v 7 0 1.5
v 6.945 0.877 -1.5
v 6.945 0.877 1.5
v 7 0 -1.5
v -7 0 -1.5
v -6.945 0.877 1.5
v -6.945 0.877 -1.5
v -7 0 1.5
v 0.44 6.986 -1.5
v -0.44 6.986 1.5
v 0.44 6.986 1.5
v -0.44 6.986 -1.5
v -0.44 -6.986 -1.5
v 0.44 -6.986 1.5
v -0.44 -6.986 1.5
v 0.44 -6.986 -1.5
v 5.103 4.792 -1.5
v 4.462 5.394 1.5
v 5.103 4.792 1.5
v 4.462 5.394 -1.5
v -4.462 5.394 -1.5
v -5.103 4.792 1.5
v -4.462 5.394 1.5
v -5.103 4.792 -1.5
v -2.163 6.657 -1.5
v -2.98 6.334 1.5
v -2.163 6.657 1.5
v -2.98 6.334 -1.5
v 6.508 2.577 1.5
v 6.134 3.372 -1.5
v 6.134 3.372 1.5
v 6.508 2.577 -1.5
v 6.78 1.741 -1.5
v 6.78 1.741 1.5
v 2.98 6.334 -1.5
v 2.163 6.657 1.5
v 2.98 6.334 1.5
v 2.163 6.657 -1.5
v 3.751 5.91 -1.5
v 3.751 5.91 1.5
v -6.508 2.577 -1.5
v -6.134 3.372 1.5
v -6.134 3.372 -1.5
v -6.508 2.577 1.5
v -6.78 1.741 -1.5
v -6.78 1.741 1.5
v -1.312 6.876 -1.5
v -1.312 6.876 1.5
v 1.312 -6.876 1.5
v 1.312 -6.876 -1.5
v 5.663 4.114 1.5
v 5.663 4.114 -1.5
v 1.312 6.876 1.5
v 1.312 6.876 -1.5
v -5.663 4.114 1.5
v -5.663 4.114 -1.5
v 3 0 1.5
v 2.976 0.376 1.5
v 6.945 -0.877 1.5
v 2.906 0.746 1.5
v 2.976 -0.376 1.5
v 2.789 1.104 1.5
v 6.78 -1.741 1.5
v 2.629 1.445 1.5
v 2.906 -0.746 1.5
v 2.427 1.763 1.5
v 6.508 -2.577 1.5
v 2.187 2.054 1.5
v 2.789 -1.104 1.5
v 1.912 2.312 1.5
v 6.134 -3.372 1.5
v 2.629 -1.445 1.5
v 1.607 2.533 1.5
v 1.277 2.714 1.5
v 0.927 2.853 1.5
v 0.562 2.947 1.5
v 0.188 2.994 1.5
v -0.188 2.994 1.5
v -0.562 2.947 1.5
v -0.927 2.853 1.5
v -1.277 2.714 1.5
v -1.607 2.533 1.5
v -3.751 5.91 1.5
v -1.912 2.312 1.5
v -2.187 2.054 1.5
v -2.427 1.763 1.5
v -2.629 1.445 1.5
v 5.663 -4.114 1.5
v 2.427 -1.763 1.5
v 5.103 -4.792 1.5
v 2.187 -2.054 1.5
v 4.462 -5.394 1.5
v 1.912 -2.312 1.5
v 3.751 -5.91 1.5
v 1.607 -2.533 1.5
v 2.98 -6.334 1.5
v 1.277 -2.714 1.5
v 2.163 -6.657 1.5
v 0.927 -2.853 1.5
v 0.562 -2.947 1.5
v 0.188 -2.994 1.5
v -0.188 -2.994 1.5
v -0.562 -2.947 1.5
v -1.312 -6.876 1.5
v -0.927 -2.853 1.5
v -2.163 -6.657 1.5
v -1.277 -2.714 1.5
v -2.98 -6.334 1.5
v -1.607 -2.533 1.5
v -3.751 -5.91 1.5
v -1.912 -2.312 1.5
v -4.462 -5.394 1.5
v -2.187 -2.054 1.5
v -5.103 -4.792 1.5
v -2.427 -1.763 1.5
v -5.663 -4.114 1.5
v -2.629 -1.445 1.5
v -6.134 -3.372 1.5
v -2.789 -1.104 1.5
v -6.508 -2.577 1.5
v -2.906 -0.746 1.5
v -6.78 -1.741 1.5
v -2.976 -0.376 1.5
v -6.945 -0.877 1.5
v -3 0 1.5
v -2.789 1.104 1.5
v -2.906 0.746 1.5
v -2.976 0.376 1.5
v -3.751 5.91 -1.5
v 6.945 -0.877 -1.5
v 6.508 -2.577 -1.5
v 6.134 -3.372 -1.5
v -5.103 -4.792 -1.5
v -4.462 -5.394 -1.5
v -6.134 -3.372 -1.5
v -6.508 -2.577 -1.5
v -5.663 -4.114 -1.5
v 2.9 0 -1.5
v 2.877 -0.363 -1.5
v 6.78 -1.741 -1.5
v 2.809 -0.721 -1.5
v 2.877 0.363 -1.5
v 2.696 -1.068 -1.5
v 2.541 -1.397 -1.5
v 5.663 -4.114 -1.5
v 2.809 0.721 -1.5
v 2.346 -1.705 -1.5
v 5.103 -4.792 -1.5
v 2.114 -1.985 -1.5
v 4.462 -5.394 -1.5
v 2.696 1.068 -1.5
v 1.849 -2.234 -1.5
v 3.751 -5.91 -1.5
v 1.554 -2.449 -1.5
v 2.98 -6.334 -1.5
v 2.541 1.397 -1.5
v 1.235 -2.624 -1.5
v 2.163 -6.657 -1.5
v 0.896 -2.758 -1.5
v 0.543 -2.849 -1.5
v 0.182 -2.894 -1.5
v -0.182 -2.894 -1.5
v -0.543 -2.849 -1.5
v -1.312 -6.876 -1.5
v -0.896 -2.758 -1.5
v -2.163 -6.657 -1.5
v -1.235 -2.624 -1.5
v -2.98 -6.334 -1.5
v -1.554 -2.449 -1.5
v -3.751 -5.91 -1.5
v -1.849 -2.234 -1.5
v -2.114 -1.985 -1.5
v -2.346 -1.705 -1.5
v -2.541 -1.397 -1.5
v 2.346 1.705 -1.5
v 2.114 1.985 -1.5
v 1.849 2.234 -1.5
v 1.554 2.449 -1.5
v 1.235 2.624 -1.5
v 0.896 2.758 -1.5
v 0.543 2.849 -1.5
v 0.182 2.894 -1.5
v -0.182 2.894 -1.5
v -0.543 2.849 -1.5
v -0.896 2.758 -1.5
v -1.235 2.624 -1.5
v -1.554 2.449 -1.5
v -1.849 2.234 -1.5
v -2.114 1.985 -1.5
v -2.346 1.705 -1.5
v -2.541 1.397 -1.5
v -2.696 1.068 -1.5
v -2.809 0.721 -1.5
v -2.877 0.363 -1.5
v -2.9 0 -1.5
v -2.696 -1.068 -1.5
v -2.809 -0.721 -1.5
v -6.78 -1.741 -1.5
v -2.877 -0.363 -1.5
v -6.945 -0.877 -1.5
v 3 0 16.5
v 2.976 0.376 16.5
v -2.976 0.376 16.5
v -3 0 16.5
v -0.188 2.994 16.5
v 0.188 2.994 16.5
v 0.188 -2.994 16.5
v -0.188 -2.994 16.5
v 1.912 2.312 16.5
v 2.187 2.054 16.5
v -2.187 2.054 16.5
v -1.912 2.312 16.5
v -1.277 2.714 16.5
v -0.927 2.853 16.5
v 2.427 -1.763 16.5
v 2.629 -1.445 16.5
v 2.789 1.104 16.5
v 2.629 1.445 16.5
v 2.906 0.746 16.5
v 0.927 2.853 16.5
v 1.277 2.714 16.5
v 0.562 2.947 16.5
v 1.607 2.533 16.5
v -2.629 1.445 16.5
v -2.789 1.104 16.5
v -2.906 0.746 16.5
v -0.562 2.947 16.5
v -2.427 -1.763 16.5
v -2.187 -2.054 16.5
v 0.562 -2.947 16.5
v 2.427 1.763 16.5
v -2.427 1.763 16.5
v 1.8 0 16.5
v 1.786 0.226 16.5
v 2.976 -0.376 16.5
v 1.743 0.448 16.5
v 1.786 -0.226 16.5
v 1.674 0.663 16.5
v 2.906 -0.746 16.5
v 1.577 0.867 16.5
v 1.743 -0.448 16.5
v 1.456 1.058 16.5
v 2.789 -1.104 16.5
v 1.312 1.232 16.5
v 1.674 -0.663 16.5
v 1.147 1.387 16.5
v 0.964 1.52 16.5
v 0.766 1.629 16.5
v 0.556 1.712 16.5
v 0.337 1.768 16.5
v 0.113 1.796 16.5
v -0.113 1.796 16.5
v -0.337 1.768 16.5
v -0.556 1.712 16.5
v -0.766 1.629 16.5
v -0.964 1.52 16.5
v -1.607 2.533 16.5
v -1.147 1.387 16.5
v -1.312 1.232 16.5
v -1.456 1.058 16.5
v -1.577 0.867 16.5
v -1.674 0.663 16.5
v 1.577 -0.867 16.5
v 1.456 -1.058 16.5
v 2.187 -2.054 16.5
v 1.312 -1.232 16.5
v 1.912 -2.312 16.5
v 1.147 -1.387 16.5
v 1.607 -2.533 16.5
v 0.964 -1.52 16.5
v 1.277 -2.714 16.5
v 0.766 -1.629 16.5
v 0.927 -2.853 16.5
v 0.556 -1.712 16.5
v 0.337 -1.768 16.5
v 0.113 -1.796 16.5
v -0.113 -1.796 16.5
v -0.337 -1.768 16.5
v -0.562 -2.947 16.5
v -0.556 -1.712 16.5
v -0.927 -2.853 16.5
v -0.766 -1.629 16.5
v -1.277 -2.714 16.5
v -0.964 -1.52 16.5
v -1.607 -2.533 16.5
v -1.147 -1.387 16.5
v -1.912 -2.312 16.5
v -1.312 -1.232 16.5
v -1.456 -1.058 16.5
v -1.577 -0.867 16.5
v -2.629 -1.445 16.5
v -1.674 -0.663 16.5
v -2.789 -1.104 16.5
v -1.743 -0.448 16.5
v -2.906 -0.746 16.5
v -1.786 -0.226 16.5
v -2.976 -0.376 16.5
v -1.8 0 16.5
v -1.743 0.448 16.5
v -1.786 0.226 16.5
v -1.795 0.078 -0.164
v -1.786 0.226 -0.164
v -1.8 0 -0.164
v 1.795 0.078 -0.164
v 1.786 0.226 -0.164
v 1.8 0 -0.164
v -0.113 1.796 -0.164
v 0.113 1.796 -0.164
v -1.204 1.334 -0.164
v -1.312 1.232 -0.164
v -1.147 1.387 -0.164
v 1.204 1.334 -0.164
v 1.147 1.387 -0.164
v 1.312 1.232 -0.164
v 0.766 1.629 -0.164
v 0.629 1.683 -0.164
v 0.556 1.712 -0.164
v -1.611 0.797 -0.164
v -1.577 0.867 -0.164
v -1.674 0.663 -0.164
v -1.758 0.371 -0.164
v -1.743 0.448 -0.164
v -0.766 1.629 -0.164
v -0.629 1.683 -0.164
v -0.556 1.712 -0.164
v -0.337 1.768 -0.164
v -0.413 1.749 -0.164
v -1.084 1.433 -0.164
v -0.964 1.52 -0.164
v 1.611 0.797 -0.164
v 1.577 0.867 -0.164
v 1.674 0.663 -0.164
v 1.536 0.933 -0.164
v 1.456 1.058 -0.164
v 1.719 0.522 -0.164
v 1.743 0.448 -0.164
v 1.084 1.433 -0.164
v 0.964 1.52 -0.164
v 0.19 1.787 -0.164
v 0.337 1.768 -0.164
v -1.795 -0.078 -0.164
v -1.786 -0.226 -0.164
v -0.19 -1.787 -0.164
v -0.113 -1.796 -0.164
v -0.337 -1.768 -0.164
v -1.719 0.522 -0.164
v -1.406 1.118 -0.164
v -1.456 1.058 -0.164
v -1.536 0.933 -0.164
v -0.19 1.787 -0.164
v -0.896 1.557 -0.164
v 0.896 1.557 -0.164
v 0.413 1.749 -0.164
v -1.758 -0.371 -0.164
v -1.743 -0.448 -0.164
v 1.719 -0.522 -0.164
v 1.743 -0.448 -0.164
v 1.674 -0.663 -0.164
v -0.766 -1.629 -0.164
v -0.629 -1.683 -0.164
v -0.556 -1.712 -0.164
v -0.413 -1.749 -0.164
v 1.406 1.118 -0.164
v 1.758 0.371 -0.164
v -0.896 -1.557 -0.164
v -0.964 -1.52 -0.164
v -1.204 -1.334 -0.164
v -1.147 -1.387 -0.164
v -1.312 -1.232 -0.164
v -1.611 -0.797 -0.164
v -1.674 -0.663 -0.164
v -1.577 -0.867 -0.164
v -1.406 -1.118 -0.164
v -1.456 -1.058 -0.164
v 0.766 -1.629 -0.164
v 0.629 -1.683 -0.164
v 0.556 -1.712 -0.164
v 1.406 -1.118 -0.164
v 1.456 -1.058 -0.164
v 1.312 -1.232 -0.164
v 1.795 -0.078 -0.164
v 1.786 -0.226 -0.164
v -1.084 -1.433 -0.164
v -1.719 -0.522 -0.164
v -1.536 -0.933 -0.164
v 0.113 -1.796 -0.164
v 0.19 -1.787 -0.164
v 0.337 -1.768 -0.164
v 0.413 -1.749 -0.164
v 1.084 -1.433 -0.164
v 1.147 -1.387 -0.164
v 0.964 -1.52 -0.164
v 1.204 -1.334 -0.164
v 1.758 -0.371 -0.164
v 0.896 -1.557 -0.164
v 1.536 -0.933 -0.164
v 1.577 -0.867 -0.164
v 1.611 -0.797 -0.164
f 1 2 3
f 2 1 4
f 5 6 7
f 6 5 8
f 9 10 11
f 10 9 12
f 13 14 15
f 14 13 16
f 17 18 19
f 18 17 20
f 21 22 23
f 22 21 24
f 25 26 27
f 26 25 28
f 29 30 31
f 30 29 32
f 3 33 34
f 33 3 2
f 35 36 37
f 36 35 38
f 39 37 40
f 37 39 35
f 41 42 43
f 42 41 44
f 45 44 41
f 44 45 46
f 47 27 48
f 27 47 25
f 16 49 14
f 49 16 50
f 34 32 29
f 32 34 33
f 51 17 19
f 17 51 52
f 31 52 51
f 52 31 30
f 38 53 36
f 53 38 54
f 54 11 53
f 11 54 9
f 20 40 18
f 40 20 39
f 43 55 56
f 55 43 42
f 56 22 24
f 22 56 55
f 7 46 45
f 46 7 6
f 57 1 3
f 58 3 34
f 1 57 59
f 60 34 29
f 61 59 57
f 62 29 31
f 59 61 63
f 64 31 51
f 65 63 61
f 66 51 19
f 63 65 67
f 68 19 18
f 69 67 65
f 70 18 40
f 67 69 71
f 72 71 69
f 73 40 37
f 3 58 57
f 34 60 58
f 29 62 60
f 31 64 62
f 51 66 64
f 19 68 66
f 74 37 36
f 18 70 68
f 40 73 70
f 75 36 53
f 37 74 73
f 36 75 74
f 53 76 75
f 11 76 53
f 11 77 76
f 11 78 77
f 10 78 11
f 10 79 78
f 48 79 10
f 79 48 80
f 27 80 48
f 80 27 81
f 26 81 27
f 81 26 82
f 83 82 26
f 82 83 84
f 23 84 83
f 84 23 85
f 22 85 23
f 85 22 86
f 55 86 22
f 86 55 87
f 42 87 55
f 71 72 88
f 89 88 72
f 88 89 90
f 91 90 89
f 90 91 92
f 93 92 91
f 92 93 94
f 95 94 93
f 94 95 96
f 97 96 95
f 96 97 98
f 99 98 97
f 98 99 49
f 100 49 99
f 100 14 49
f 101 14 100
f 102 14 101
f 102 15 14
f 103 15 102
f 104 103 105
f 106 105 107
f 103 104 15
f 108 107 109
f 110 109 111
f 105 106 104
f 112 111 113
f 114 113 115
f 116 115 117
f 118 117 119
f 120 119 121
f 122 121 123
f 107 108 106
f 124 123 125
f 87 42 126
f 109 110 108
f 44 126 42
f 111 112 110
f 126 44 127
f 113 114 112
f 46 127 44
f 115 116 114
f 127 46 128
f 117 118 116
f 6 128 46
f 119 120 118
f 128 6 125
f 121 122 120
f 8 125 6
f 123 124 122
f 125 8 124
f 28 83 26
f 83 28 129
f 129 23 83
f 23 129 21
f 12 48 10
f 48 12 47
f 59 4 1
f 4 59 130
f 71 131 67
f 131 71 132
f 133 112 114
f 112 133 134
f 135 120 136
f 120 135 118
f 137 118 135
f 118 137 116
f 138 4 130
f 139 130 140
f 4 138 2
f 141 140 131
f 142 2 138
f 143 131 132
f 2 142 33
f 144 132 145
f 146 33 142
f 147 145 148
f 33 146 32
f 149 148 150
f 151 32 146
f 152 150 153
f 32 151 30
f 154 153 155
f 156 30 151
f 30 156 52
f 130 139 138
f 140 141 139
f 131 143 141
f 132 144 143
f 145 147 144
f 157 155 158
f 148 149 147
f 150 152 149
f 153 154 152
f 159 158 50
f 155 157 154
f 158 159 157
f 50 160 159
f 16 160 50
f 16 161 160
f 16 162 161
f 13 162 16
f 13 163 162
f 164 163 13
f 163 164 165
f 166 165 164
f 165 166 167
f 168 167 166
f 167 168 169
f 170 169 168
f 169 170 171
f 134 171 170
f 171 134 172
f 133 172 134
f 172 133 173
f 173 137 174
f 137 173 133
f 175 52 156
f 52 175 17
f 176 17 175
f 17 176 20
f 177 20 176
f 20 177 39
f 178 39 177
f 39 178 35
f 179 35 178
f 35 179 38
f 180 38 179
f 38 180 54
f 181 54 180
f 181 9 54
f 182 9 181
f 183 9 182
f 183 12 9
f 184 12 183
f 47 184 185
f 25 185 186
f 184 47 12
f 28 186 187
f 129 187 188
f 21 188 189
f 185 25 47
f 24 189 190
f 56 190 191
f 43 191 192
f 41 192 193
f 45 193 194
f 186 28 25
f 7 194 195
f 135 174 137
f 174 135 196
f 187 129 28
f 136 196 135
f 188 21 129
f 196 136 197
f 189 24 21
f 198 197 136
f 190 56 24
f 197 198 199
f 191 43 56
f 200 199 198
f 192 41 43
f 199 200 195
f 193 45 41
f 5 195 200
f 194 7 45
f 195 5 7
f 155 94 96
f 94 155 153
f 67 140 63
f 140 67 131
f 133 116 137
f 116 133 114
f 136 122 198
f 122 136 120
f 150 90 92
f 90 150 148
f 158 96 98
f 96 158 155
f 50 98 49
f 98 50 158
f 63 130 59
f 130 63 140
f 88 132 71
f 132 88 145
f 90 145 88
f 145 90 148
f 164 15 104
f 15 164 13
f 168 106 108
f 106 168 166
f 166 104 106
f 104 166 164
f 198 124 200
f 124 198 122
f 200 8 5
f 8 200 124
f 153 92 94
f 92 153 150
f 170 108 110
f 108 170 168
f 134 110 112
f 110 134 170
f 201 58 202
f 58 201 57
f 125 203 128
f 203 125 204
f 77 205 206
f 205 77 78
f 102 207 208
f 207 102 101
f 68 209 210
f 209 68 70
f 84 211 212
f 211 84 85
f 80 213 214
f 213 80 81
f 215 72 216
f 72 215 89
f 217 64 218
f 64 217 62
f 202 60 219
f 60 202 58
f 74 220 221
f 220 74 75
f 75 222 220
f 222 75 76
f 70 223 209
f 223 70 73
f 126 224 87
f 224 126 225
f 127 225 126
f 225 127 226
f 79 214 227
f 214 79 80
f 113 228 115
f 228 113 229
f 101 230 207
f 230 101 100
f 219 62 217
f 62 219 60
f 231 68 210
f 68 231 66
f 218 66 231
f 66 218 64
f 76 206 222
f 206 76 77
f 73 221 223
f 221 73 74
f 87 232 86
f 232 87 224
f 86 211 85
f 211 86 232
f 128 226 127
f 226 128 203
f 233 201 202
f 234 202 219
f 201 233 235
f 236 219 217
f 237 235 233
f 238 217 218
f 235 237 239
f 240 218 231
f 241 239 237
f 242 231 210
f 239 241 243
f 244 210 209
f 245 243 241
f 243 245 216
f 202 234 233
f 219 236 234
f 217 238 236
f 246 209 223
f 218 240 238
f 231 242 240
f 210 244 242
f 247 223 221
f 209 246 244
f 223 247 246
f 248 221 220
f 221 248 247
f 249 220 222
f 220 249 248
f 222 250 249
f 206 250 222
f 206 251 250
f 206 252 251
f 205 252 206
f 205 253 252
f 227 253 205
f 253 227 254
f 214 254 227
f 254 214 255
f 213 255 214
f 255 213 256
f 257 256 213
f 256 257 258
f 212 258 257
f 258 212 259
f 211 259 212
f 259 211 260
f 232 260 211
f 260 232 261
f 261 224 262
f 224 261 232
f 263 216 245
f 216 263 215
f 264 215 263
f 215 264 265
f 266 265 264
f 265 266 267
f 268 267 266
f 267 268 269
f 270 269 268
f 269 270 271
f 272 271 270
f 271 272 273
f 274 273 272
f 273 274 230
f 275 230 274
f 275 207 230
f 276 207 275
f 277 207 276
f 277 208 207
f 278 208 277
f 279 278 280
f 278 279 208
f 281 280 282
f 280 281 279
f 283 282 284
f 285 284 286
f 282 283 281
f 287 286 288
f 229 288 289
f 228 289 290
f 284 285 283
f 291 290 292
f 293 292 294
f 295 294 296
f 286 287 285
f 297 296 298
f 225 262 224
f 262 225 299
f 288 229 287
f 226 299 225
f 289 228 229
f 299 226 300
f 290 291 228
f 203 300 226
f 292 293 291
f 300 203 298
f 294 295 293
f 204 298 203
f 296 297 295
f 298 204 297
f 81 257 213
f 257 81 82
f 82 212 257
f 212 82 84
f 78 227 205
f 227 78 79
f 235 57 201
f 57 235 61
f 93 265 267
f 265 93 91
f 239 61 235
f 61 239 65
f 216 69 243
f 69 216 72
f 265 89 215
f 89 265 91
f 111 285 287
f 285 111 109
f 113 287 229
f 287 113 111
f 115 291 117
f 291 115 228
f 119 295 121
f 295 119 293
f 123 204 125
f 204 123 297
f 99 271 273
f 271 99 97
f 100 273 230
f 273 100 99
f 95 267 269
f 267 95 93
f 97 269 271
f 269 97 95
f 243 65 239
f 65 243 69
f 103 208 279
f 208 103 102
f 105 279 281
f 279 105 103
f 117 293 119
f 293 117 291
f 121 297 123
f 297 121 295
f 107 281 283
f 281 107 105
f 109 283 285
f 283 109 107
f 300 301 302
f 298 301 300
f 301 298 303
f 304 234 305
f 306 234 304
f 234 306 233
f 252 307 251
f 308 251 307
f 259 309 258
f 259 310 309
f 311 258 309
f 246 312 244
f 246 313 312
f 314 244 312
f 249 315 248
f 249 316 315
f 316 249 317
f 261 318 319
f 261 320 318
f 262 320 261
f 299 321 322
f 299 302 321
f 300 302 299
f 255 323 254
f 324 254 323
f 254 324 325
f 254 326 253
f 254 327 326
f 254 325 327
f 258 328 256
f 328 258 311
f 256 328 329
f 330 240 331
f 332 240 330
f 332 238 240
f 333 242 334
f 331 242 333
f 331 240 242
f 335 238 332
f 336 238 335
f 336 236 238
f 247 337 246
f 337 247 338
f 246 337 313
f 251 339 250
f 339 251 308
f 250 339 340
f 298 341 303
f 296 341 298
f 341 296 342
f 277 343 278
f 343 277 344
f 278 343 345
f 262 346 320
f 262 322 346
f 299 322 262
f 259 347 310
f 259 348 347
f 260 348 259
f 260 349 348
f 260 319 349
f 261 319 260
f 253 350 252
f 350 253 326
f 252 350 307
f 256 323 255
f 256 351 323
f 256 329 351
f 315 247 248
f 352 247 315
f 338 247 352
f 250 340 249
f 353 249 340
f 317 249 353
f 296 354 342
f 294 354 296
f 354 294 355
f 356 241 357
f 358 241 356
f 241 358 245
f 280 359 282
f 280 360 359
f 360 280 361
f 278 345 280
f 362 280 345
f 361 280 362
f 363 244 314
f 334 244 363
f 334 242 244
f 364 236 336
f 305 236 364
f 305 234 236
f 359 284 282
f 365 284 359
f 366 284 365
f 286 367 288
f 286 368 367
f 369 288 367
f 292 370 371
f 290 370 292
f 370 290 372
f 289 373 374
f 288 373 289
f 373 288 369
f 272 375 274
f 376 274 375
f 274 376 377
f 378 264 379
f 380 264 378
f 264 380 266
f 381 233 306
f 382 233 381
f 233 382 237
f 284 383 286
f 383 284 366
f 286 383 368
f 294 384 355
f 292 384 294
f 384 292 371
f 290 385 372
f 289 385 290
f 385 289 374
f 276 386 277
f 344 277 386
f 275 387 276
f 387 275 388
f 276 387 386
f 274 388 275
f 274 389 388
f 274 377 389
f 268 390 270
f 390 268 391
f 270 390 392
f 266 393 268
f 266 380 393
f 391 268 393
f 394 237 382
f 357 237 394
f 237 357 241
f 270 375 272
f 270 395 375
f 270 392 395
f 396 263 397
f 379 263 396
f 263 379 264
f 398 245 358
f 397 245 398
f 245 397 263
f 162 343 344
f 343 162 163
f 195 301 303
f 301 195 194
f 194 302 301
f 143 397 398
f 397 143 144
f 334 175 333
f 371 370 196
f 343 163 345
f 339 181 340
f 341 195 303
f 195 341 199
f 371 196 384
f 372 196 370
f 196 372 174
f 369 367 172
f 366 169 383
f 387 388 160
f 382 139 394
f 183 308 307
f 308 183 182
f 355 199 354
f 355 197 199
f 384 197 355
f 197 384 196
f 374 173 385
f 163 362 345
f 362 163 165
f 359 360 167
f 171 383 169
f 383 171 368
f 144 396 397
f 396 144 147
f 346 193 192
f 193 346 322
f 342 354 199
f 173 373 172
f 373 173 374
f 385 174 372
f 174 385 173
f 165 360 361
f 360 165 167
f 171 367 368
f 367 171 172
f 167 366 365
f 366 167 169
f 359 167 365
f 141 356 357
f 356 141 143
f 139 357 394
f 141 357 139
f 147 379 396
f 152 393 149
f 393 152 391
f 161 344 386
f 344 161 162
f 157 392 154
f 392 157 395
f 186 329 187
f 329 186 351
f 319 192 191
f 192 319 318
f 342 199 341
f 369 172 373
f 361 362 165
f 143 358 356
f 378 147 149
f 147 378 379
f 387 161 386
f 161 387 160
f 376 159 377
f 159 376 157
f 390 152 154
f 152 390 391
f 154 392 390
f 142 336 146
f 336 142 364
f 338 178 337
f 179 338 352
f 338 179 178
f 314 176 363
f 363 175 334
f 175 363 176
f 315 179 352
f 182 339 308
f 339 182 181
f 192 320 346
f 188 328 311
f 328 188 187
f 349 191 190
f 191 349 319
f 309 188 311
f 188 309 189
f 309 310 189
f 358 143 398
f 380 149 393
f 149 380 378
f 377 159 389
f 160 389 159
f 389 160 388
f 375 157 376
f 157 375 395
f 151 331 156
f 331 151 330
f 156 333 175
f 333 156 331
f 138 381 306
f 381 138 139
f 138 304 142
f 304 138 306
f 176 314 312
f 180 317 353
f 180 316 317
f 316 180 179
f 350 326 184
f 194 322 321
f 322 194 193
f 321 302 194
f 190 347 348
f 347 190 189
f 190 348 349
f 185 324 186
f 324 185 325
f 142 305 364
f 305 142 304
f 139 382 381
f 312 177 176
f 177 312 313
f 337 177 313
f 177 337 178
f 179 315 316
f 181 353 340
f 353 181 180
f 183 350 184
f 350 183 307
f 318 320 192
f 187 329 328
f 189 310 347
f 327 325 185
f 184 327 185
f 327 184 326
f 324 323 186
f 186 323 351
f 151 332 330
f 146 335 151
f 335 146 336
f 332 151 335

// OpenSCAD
$fn = 50;


difference() {
	union() {
		translate(v = [0, 0, -1.5000000000]) {
			cylinder(h = 3, r = 7.0000000000);
		}
		translate(v = [0, 0, -1.5000000000]) {
			cylinder(h = 18, r = 3.0000000000);
		}
	}
	union() {
		translate(v = [0, 0, -1.5000000000]) {
			rotate(a = [0, 180, 0]) {
				difference() {
					union() {
						translate(v = [0, 0, -18.0000000000]) {
							cylinder(h = 18, r = 1.5000000000);
						}
						translate(v = [0, 0, -18.0000000000]) {
							cylinder(h = 18, r = 1.8000000000);
						}
						translate(v = [0, 0, -1.7000000000]) {
							cylinder(h = 1.7000000000, r1 = 1.5000000000, r2 = 2.9000000000);
						}
						translate(v = [0, 0, -18.0000000000]) {
							cylinder(h = 18, r = 1.5000000000);
						}
					}
					union();
				}
			}
		}
		translate(v = [0, 0, -50.0000000000]) {
			cylinder(h = 100, r = 1.5000000000);
		}
	}
}
